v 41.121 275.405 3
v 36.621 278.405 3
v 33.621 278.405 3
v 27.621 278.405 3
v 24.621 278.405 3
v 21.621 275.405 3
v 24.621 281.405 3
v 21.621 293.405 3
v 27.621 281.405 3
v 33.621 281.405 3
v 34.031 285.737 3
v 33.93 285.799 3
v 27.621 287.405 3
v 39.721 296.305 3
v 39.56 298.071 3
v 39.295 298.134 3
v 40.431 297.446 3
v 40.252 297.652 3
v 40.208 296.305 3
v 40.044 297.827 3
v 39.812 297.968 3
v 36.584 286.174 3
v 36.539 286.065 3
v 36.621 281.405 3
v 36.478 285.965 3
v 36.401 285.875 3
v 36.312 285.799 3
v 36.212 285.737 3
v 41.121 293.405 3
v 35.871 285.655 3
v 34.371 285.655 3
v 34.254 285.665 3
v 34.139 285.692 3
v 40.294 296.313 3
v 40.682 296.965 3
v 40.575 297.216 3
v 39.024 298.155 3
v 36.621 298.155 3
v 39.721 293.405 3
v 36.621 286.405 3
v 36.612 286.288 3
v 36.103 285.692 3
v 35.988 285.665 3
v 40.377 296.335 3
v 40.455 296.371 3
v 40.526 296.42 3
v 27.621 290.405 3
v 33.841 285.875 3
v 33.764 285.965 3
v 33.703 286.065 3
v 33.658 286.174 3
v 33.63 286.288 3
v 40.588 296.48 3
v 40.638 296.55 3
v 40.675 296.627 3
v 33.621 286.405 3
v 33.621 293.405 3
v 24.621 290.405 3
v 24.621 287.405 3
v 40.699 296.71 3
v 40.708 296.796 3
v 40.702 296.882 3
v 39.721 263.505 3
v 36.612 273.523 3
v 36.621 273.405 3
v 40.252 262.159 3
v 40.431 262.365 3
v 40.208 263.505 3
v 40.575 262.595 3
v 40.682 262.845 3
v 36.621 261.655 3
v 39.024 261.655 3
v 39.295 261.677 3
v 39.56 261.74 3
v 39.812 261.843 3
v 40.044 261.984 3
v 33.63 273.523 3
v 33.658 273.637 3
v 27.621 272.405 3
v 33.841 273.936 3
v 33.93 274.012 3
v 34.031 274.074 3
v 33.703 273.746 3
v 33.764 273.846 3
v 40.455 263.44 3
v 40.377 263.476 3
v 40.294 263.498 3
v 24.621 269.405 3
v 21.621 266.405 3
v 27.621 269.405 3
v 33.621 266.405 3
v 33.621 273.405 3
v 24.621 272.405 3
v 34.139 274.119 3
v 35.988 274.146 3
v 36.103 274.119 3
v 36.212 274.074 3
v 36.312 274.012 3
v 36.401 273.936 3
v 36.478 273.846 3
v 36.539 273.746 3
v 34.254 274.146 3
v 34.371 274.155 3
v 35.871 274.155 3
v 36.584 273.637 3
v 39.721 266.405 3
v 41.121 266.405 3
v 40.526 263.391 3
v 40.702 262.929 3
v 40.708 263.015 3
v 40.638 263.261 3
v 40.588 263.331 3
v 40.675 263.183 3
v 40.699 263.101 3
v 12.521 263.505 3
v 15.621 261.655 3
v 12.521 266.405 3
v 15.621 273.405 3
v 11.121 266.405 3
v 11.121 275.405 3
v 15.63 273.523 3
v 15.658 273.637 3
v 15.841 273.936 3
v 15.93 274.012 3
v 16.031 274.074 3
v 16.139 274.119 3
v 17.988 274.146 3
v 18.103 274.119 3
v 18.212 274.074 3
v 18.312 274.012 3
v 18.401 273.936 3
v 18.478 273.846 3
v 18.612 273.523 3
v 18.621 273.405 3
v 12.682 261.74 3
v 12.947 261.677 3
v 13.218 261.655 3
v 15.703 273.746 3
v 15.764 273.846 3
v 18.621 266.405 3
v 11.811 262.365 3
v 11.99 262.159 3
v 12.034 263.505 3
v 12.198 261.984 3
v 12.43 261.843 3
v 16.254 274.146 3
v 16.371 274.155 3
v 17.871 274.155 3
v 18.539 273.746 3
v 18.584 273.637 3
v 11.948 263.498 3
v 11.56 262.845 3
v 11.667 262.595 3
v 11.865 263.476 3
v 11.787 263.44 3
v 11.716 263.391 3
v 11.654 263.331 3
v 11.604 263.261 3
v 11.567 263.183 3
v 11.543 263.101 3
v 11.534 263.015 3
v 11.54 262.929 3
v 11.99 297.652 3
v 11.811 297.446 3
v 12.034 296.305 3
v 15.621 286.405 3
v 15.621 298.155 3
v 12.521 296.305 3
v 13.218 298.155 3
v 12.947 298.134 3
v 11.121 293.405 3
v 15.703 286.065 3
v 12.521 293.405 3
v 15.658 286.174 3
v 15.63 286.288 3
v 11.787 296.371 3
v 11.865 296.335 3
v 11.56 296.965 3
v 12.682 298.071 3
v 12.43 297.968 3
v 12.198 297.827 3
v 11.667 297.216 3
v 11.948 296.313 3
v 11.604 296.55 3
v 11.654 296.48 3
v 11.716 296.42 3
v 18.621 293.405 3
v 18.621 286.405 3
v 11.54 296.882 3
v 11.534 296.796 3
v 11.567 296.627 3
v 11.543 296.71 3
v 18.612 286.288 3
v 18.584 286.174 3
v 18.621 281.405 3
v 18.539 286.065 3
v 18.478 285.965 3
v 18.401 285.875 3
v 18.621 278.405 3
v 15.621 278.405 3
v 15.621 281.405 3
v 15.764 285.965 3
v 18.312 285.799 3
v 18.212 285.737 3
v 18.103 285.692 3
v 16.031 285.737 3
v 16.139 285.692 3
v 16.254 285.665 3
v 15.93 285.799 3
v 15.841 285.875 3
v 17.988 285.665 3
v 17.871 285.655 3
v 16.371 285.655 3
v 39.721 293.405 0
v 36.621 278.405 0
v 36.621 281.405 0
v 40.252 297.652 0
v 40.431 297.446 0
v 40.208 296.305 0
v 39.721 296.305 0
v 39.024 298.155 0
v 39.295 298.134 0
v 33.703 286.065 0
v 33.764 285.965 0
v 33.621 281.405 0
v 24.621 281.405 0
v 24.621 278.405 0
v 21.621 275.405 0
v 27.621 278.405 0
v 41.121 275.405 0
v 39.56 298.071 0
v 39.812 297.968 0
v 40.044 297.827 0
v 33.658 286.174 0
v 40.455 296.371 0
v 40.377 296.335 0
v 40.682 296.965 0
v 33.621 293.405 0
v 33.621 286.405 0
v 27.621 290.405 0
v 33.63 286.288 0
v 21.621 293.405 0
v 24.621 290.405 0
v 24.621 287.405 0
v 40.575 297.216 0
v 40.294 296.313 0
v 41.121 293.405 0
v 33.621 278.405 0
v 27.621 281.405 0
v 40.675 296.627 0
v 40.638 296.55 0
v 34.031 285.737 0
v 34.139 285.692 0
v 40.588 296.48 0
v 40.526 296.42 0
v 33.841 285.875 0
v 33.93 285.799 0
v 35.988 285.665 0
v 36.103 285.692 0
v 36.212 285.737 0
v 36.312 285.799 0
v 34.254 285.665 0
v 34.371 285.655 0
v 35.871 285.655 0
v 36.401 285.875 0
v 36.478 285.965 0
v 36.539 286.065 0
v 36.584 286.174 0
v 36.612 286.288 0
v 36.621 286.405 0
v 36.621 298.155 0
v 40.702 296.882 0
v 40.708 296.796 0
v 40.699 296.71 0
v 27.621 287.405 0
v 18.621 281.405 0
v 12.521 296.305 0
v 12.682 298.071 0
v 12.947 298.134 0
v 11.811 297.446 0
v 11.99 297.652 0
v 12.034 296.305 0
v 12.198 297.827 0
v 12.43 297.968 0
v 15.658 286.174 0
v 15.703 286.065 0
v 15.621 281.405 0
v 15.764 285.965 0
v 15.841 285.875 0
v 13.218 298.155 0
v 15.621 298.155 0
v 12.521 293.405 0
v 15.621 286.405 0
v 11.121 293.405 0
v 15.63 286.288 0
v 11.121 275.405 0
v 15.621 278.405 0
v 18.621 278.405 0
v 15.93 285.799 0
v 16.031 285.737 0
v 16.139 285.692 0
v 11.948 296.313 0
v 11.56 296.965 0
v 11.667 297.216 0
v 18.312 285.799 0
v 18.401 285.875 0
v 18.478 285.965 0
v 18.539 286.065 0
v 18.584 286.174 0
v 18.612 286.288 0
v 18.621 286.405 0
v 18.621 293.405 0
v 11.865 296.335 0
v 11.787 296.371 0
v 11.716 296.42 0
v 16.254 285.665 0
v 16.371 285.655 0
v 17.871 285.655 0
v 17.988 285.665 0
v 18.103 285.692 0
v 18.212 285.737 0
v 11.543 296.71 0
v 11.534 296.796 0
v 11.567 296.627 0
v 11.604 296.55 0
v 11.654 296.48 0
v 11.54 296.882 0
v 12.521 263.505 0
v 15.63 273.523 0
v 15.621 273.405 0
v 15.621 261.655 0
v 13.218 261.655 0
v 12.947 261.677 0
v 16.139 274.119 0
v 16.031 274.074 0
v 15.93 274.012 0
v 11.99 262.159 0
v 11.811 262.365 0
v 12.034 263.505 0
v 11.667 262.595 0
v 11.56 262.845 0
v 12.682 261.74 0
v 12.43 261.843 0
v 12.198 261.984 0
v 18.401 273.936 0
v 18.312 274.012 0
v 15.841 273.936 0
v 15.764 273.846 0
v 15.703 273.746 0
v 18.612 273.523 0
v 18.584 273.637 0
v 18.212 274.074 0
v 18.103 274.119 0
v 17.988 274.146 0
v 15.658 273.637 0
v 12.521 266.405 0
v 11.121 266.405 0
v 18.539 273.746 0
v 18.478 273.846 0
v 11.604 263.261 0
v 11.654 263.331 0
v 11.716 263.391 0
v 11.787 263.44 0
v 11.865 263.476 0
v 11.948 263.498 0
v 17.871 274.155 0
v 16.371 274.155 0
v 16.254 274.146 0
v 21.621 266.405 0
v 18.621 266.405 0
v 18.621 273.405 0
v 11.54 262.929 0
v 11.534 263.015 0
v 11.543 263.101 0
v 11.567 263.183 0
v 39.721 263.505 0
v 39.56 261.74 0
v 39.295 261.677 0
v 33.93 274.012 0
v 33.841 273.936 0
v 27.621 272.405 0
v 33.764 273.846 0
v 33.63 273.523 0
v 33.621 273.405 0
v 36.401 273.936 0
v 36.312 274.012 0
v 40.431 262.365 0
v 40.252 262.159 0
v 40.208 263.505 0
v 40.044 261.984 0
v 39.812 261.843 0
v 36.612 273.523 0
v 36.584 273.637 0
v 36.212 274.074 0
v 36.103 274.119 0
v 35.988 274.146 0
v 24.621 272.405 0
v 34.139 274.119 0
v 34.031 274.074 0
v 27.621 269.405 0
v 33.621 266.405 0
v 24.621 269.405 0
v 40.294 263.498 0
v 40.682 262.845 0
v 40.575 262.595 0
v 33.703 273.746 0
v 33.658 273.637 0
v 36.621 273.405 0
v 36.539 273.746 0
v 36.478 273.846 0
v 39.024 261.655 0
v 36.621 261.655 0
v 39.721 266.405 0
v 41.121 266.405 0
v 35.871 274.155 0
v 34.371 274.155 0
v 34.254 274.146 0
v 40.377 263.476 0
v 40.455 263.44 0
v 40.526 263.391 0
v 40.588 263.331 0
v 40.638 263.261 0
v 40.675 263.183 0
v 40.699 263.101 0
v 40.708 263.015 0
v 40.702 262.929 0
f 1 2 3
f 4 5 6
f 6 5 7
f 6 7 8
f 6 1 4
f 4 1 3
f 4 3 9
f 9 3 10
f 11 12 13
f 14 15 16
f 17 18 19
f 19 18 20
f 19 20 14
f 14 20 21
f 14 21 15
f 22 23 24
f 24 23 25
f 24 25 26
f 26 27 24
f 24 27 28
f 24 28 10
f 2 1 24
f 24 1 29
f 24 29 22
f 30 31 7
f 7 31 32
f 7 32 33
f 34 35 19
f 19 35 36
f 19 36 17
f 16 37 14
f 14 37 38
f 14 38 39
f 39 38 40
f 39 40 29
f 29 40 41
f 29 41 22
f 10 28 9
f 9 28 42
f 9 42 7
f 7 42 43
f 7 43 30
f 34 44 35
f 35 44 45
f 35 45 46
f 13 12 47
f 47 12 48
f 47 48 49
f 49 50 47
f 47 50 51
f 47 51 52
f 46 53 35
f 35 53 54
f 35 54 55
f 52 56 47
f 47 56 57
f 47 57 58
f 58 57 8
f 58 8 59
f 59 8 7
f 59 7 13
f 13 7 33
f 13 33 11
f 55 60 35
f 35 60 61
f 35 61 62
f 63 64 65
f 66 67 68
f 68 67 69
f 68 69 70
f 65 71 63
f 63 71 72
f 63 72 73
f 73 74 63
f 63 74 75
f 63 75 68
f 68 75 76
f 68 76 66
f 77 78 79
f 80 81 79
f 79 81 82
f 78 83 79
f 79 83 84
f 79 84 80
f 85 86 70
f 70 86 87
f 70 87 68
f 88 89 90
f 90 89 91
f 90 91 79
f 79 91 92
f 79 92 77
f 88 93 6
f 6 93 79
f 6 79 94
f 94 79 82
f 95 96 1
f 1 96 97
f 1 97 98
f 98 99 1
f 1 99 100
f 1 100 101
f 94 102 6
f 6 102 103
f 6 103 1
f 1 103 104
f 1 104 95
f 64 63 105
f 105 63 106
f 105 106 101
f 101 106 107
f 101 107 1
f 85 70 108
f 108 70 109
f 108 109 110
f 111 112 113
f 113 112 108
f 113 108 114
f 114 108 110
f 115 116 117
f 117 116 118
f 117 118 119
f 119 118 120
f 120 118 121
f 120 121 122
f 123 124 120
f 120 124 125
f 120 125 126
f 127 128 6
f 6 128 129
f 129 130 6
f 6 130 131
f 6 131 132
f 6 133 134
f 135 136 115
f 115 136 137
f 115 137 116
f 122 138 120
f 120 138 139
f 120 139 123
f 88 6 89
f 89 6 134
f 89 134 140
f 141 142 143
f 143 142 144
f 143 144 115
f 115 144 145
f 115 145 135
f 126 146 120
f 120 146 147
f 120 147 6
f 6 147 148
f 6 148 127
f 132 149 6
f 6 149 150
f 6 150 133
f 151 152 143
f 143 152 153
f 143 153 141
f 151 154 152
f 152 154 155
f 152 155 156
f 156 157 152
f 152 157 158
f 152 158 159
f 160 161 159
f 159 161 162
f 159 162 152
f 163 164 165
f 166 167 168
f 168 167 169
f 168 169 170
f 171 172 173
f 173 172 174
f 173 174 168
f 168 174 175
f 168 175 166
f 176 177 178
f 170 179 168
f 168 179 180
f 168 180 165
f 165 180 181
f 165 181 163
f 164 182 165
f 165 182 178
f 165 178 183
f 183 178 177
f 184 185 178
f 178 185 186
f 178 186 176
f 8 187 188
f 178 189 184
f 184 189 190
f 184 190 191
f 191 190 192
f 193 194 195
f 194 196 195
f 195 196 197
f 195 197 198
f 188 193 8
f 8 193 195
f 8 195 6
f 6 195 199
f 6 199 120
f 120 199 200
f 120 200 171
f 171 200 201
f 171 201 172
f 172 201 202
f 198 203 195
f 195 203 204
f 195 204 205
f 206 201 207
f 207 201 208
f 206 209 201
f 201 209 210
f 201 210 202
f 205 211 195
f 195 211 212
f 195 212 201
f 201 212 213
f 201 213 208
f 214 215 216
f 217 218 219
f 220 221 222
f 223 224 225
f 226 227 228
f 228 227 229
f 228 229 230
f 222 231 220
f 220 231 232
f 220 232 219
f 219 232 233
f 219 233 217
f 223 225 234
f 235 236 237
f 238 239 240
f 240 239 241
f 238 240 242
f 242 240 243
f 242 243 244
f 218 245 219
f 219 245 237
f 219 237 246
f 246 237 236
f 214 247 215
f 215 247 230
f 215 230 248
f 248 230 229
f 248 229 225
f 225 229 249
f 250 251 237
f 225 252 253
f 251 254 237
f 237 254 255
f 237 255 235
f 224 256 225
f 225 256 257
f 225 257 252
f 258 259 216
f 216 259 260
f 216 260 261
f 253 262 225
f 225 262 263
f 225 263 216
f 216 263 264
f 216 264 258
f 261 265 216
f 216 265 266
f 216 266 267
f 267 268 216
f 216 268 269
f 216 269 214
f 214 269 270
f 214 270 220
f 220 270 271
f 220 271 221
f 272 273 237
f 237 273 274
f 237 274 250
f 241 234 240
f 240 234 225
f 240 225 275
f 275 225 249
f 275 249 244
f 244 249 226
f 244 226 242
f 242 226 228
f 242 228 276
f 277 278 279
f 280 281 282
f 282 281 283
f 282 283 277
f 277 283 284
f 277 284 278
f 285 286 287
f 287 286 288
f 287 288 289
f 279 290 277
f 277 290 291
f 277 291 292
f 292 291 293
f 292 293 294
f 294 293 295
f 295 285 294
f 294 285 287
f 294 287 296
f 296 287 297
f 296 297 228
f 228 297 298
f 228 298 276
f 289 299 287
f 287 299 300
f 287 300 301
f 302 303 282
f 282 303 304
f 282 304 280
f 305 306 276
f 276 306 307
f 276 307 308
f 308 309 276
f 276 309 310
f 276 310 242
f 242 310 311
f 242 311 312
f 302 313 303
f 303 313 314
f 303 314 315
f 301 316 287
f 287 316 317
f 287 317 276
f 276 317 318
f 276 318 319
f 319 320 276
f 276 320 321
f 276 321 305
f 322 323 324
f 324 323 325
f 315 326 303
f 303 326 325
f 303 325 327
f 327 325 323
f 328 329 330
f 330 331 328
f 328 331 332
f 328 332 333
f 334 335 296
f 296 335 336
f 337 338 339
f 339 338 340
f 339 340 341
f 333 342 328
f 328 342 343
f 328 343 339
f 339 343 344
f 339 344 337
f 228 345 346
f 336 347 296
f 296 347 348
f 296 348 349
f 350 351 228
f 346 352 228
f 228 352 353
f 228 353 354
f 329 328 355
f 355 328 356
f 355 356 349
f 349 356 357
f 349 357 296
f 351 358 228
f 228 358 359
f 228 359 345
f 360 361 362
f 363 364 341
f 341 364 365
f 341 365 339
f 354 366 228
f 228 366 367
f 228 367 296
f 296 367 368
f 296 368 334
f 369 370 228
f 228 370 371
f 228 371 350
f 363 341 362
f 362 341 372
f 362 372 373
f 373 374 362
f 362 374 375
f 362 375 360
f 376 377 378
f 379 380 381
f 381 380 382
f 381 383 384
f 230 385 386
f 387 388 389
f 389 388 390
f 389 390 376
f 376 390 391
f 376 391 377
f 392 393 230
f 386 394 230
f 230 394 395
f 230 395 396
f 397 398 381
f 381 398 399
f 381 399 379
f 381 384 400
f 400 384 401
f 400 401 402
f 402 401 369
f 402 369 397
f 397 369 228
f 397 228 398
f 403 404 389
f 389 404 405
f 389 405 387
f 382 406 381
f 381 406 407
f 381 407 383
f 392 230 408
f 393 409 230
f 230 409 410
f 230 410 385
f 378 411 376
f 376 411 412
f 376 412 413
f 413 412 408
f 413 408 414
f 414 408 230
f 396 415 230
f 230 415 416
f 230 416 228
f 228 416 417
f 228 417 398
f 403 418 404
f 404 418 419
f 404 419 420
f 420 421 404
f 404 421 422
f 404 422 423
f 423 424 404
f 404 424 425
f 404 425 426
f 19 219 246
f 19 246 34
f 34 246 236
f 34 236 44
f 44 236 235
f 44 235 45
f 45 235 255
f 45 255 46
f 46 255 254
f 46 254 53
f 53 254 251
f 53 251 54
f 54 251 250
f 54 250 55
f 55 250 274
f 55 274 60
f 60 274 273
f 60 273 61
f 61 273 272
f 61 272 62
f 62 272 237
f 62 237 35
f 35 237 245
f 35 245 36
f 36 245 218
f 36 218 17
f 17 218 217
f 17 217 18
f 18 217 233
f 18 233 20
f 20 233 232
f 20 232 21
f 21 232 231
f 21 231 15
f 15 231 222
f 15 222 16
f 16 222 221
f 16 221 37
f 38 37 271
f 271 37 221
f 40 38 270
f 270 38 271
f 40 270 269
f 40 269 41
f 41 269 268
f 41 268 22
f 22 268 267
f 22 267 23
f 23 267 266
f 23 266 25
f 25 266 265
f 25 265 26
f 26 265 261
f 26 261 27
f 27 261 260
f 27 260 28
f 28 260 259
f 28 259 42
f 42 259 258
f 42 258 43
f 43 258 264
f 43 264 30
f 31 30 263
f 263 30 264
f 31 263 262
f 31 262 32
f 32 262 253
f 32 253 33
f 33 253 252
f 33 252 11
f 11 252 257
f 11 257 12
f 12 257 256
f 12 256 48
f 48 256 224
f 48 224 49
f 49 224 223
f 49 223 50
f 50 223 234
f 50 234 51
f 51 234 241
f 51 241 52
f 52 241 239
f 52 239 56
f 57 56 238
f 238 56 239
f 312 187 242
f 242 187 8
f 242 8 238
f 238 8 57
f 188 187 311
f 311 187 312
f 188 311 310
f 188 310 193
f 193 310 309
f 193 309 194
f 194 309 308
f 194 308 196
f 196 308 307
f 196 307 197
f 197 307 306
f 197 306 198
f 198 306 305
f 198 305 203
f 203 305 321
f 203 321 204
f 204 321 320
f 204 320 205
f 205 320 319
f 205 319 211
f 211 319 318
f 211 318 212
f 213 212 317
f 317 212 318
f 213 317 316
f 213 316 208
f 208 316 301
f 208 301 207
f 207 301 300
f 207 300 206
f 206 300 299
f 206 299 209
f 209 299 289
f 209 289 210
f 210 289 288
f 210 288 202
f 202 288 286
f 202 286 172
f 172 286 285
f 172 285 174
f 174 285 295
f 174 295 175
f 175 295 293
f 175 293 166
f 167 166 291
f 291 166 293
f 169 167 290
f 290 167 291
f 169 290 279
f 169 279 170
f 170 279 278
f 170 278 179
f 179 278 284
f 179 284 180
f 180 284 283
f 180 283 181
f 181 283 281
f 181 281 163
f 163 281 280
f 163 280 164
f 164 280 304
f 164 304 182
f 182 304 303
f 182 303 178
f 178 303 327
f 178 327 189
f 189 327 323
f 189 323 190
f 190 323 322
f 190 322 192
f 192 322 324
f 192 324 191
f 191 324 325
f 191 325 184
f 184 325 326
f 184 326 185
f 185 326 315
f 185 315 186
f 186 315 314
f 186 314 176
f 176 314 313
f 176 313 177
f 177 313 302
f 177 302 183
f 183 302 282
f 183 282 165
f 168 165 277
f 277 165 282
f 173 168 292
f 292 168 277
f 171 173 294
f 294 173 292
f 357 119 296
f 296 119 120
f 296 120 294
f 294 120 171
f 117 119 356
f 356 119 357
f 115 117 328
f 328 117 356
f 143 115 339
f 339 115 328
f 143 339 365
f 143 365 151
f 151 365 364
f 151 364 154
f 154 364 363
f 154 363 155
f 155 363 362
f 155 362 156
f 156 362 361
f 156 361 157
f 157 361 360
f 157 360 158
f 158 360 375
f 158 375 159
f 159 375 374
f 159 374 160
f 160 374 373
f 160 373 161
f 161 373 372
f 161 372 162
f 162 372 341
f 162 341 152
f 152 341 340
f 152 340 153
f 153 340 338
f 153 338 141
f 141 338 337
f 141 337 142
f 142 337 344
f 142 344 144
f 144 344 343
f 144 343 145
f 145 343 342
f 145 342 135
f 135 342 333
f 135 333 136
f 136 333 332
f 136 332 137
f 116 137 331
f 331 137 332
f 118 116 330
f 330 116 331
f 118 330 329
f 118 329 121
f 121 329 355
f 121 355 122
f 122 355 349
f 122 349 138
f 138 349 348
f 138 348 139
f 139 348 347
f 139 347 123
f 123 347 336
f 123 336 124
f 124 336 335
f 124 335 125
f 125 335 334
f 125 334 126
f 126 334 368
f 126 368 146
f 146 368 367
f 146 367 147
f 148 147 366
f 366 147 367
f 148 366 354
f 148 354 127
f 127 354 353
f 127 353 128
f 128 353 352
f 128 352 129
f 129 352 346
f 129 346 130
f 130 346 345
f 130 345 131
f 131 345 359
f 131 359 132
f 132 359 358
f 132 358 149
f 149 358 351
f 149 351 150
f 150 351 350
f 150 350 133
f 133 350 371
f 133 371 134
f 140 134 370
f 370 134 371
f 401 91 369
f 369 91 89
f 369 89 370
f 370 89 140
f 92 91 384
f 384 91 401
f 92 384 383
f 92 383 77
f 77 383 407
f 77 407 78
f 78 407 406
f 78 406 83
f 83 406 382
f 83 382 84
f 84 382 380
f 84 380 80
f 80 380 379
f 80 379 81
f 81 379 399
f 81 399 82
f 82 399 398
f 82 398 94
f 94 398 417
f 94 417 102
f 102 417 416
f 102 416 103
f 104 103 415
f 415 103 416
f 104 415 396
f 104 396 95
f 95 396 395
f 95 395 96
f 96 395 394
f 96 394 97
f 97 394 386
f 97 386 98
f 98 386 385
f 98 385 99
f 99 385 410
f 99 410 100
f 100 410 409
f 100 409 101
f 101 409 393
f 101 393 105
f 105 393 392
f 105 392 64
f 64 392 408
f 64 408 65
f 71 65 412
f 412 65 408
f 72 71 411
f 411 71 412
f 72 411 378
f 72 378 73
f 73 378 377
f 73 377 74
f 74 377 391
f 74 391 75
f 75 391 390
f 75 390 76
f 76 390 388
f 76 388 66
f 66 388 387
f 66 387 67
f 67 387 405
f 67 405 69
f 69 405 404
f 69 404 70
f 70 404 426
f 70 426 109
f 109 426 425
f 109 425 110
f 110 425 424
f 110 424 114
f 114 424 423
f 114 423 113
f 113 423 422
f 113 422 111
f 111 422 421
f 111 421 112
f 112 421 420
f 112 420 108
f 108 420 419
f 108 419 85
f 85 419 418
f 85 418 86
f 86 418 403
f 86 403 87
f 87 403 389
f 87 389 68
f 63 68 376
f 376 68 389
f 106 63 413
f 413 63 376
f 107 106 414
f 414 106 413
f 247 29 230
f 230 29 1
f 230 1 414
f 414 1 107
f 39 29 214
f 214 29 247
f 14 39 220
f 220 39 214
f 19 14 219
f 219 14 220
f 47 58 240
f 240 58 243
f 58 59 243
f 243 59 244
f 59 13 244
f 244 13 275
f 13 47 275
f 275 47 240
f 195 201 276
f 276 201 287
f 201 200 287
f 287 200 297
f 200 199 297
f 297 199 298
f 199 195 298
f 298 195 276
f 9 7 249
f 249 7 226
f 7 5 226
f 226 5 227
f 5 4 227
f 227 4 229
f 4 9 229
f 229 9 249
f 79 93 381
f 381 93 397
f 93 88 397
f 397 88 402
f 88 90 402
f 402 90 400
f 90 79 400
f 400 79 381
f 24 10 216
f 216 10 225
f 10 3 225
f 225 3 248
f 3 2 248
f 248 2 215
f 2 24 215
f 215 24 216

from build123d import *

# Parameters (mm, degrees)
MODEL_W                 = 3
MODEL_H                 = 3
SALIENTE_EXTRUIR1_DEPTH = 3


with BuildPart() as part:
    # Model → Saliente-Extruir1 (new body)
    with BuildSketch(Plane.XY):
        with BuildLine():
            Line((36.621026826, 298.155466529), (39.023886305, 298.155466529))
            ThreePointArc((39.023886305, 298.155466529), (40.044302886, 297.82717325), (40.681867004, 296.965466529))
            ThreePointArc((40.681867004, 296.965466529), (40.614360153, 296.513918935), (40.208158233, 296.305466529))
            Line((40.208158233, 296.305466529), (39.721026826, 296.305466529))
            Line((39.721026826, 296.305466529), (39.721026826, 293.405466529))
            Line((39.721026826, 293.405466529), (41.121026826, 293.405466529))
            Line((41.121026826, 293.405466529), (41.121026826, 266.405466529))
            Line((41.121026826, 266.405466529), (39.721026826, 266.405466529))
            Line((39.721026826, 266.405466529), (39.721026826, 263.505466529))
            Line((39.721026826, 263.505466529), (40.208158233, 263.505466529))
            ThreePointArc((40.208158233, 263.505466529), (40.614360153, 263.297014124), (40.681867004, 262.845466529))
            ThreePointArc((40.681867004, 262.845466529), (40.044302886, 261.983759808), (39.023886305, 261.655466529))
            Line((39.023886305, 261.655466529), (36.621026826, 261.655466529))
            Line((36.621026826, 261.655466529), (36.621026826, 273.405466529))
            ThreePointArc((36.621026826, 273.405466529), (36.401356911, 273.935796615), (35.871026826, 274.155466529))
            Line((35.871026826, 274.155466529), (34.371026826, 274.155466529))
            ThreePointArc((34.371026826, 274.155466529), (33.84069674, 273.935796615), (33.621026826, 273.405466529))
            Line((33.621026826, 273.405466529), (33.621026826, 266.405466529))
            Line((33.621026826, 266.405466529), (18.621026826, 266.405466529))
            Line((18.621026826, 266.405466529), (18.621026826, 273.405466529))
            ThreePointArc((18.621026826, 273.405466529), (18.401356911, 273.935796615), (17.871026826, 274.155466529))
            Line((17.871026826, 274.155466529), (16.371026826, 274.155466529))
            ThreePointArc((16.371026826, 274.155466529), (15.84069674, 273.935796615), (15.621026826, 273.405466529))
            Line((15.621026826, 273.405466529), (15.621026826, 261.655466529))
            Line((15.621026826, 261.655466529), (13.218167347, 261.655466529))
            ThreePointArc((13.218167347, 261.655466529), (12.197750765, 261.983759808), (11.560186647, 262.845466529))
            ThreePointArc((11.560186647, 262.845466529), (11.627693498, 263.297014124), (12.033895418, 263.505466529))
            Line((12.033895418, 263.505466529), (12.521026826, 263.505466529))
            Line((12.521026826, 263.505466529), (12.521026826, 266.405466529))
            Line((12.521026826, 266.405466529), (11.121026826, 266.405466529))
            Line((11.121026826, 266.405466529), (11.121026826, 293.405466529))
            Line((11.121026826, 293.405466529), (12.521026826, 293.405466529))
            Line((12.521026826, 293.405466529), (12.521026826, 296.305466529))
            Line((12.521026826, 296.305466529), (12.033895418, 296.305466529))
            ThreePointArc((12.033895418, 296.305466529), (11.627693498, 296.513918935), (11.560186647, 296.965466529))
            ThreePointArc((11.560186647, 296.965466529), (12.197750765, 297.82717325), (13.218167347, 298.155466529))
            Line((13.218167347, 298.155466529), (15.621026826, 298.155466529))
            Line((15.621026826, 298.155466529), (15.621026826, 286.405466529))
            ThreePointArc((15.621026826, 286.405466529), (15.84069674, 285.875136443), (16.371026826, 285.655466529))
            Line((16.371026826, 285.655466529), (17.871026826, 285.655466529))
            ThreePointArc((17.871026826, 285.655466529), (18.401356911, 285.875136443), (18.621026826, 286.405466529))
            Line((18.621026826, 286.405466529), (18.621026826, 293.405466529))
            Line((18.621026826, 293.405466529), (33.621026826, 293.405466529))
            Line((33.621026826, 293.405466529), (33.621026826, 286.405466529))
            ThreePointArc((33.621026826, 286.405466529), (33.84069674, 285.875136443), (34.371026826, 285.655466529))
            Line((34.371026826, 285.655466529), (35.871026826, 285.655466529))
            ThreePointArc((35.871026826, 285.655466529), (36.401356911, 285.875136443), (36.621026826, 286.405466529))
            Line((36.621026826, 286.405466529), (36.621026826, 298.155466529))
        make_face()
        with Locations((26.121026826, 288.905466529)):
            Rectangle(MODEL_W, MODEL_H, mode=Mode.SUBTRACT)
        with Locations((17.121026826, 279.905466529)):
            Rectangle(MODEL_W, MODEL_H, mode=Mode.SUBTRACT)
        with Locations((26.121026826, 279.905466529)):
            Rectangle(MODEL_W, MODEL_H, mode=Mode.SUBTRACT)
        with Locations((26.121026826, 270.905466529)):
            Rectangle(MODEL_W, MODEL_H, mode=Mode.SUBTRACT)
        with Locations((35.121026826, 279.905466529)):
            Rectangle(MODEL_W, MODEL_H, mode=Mode.SUBTRACT)
    extrude(amount=SALIENTE_EXTRUIR1_DEPTH)


solid = part.part
